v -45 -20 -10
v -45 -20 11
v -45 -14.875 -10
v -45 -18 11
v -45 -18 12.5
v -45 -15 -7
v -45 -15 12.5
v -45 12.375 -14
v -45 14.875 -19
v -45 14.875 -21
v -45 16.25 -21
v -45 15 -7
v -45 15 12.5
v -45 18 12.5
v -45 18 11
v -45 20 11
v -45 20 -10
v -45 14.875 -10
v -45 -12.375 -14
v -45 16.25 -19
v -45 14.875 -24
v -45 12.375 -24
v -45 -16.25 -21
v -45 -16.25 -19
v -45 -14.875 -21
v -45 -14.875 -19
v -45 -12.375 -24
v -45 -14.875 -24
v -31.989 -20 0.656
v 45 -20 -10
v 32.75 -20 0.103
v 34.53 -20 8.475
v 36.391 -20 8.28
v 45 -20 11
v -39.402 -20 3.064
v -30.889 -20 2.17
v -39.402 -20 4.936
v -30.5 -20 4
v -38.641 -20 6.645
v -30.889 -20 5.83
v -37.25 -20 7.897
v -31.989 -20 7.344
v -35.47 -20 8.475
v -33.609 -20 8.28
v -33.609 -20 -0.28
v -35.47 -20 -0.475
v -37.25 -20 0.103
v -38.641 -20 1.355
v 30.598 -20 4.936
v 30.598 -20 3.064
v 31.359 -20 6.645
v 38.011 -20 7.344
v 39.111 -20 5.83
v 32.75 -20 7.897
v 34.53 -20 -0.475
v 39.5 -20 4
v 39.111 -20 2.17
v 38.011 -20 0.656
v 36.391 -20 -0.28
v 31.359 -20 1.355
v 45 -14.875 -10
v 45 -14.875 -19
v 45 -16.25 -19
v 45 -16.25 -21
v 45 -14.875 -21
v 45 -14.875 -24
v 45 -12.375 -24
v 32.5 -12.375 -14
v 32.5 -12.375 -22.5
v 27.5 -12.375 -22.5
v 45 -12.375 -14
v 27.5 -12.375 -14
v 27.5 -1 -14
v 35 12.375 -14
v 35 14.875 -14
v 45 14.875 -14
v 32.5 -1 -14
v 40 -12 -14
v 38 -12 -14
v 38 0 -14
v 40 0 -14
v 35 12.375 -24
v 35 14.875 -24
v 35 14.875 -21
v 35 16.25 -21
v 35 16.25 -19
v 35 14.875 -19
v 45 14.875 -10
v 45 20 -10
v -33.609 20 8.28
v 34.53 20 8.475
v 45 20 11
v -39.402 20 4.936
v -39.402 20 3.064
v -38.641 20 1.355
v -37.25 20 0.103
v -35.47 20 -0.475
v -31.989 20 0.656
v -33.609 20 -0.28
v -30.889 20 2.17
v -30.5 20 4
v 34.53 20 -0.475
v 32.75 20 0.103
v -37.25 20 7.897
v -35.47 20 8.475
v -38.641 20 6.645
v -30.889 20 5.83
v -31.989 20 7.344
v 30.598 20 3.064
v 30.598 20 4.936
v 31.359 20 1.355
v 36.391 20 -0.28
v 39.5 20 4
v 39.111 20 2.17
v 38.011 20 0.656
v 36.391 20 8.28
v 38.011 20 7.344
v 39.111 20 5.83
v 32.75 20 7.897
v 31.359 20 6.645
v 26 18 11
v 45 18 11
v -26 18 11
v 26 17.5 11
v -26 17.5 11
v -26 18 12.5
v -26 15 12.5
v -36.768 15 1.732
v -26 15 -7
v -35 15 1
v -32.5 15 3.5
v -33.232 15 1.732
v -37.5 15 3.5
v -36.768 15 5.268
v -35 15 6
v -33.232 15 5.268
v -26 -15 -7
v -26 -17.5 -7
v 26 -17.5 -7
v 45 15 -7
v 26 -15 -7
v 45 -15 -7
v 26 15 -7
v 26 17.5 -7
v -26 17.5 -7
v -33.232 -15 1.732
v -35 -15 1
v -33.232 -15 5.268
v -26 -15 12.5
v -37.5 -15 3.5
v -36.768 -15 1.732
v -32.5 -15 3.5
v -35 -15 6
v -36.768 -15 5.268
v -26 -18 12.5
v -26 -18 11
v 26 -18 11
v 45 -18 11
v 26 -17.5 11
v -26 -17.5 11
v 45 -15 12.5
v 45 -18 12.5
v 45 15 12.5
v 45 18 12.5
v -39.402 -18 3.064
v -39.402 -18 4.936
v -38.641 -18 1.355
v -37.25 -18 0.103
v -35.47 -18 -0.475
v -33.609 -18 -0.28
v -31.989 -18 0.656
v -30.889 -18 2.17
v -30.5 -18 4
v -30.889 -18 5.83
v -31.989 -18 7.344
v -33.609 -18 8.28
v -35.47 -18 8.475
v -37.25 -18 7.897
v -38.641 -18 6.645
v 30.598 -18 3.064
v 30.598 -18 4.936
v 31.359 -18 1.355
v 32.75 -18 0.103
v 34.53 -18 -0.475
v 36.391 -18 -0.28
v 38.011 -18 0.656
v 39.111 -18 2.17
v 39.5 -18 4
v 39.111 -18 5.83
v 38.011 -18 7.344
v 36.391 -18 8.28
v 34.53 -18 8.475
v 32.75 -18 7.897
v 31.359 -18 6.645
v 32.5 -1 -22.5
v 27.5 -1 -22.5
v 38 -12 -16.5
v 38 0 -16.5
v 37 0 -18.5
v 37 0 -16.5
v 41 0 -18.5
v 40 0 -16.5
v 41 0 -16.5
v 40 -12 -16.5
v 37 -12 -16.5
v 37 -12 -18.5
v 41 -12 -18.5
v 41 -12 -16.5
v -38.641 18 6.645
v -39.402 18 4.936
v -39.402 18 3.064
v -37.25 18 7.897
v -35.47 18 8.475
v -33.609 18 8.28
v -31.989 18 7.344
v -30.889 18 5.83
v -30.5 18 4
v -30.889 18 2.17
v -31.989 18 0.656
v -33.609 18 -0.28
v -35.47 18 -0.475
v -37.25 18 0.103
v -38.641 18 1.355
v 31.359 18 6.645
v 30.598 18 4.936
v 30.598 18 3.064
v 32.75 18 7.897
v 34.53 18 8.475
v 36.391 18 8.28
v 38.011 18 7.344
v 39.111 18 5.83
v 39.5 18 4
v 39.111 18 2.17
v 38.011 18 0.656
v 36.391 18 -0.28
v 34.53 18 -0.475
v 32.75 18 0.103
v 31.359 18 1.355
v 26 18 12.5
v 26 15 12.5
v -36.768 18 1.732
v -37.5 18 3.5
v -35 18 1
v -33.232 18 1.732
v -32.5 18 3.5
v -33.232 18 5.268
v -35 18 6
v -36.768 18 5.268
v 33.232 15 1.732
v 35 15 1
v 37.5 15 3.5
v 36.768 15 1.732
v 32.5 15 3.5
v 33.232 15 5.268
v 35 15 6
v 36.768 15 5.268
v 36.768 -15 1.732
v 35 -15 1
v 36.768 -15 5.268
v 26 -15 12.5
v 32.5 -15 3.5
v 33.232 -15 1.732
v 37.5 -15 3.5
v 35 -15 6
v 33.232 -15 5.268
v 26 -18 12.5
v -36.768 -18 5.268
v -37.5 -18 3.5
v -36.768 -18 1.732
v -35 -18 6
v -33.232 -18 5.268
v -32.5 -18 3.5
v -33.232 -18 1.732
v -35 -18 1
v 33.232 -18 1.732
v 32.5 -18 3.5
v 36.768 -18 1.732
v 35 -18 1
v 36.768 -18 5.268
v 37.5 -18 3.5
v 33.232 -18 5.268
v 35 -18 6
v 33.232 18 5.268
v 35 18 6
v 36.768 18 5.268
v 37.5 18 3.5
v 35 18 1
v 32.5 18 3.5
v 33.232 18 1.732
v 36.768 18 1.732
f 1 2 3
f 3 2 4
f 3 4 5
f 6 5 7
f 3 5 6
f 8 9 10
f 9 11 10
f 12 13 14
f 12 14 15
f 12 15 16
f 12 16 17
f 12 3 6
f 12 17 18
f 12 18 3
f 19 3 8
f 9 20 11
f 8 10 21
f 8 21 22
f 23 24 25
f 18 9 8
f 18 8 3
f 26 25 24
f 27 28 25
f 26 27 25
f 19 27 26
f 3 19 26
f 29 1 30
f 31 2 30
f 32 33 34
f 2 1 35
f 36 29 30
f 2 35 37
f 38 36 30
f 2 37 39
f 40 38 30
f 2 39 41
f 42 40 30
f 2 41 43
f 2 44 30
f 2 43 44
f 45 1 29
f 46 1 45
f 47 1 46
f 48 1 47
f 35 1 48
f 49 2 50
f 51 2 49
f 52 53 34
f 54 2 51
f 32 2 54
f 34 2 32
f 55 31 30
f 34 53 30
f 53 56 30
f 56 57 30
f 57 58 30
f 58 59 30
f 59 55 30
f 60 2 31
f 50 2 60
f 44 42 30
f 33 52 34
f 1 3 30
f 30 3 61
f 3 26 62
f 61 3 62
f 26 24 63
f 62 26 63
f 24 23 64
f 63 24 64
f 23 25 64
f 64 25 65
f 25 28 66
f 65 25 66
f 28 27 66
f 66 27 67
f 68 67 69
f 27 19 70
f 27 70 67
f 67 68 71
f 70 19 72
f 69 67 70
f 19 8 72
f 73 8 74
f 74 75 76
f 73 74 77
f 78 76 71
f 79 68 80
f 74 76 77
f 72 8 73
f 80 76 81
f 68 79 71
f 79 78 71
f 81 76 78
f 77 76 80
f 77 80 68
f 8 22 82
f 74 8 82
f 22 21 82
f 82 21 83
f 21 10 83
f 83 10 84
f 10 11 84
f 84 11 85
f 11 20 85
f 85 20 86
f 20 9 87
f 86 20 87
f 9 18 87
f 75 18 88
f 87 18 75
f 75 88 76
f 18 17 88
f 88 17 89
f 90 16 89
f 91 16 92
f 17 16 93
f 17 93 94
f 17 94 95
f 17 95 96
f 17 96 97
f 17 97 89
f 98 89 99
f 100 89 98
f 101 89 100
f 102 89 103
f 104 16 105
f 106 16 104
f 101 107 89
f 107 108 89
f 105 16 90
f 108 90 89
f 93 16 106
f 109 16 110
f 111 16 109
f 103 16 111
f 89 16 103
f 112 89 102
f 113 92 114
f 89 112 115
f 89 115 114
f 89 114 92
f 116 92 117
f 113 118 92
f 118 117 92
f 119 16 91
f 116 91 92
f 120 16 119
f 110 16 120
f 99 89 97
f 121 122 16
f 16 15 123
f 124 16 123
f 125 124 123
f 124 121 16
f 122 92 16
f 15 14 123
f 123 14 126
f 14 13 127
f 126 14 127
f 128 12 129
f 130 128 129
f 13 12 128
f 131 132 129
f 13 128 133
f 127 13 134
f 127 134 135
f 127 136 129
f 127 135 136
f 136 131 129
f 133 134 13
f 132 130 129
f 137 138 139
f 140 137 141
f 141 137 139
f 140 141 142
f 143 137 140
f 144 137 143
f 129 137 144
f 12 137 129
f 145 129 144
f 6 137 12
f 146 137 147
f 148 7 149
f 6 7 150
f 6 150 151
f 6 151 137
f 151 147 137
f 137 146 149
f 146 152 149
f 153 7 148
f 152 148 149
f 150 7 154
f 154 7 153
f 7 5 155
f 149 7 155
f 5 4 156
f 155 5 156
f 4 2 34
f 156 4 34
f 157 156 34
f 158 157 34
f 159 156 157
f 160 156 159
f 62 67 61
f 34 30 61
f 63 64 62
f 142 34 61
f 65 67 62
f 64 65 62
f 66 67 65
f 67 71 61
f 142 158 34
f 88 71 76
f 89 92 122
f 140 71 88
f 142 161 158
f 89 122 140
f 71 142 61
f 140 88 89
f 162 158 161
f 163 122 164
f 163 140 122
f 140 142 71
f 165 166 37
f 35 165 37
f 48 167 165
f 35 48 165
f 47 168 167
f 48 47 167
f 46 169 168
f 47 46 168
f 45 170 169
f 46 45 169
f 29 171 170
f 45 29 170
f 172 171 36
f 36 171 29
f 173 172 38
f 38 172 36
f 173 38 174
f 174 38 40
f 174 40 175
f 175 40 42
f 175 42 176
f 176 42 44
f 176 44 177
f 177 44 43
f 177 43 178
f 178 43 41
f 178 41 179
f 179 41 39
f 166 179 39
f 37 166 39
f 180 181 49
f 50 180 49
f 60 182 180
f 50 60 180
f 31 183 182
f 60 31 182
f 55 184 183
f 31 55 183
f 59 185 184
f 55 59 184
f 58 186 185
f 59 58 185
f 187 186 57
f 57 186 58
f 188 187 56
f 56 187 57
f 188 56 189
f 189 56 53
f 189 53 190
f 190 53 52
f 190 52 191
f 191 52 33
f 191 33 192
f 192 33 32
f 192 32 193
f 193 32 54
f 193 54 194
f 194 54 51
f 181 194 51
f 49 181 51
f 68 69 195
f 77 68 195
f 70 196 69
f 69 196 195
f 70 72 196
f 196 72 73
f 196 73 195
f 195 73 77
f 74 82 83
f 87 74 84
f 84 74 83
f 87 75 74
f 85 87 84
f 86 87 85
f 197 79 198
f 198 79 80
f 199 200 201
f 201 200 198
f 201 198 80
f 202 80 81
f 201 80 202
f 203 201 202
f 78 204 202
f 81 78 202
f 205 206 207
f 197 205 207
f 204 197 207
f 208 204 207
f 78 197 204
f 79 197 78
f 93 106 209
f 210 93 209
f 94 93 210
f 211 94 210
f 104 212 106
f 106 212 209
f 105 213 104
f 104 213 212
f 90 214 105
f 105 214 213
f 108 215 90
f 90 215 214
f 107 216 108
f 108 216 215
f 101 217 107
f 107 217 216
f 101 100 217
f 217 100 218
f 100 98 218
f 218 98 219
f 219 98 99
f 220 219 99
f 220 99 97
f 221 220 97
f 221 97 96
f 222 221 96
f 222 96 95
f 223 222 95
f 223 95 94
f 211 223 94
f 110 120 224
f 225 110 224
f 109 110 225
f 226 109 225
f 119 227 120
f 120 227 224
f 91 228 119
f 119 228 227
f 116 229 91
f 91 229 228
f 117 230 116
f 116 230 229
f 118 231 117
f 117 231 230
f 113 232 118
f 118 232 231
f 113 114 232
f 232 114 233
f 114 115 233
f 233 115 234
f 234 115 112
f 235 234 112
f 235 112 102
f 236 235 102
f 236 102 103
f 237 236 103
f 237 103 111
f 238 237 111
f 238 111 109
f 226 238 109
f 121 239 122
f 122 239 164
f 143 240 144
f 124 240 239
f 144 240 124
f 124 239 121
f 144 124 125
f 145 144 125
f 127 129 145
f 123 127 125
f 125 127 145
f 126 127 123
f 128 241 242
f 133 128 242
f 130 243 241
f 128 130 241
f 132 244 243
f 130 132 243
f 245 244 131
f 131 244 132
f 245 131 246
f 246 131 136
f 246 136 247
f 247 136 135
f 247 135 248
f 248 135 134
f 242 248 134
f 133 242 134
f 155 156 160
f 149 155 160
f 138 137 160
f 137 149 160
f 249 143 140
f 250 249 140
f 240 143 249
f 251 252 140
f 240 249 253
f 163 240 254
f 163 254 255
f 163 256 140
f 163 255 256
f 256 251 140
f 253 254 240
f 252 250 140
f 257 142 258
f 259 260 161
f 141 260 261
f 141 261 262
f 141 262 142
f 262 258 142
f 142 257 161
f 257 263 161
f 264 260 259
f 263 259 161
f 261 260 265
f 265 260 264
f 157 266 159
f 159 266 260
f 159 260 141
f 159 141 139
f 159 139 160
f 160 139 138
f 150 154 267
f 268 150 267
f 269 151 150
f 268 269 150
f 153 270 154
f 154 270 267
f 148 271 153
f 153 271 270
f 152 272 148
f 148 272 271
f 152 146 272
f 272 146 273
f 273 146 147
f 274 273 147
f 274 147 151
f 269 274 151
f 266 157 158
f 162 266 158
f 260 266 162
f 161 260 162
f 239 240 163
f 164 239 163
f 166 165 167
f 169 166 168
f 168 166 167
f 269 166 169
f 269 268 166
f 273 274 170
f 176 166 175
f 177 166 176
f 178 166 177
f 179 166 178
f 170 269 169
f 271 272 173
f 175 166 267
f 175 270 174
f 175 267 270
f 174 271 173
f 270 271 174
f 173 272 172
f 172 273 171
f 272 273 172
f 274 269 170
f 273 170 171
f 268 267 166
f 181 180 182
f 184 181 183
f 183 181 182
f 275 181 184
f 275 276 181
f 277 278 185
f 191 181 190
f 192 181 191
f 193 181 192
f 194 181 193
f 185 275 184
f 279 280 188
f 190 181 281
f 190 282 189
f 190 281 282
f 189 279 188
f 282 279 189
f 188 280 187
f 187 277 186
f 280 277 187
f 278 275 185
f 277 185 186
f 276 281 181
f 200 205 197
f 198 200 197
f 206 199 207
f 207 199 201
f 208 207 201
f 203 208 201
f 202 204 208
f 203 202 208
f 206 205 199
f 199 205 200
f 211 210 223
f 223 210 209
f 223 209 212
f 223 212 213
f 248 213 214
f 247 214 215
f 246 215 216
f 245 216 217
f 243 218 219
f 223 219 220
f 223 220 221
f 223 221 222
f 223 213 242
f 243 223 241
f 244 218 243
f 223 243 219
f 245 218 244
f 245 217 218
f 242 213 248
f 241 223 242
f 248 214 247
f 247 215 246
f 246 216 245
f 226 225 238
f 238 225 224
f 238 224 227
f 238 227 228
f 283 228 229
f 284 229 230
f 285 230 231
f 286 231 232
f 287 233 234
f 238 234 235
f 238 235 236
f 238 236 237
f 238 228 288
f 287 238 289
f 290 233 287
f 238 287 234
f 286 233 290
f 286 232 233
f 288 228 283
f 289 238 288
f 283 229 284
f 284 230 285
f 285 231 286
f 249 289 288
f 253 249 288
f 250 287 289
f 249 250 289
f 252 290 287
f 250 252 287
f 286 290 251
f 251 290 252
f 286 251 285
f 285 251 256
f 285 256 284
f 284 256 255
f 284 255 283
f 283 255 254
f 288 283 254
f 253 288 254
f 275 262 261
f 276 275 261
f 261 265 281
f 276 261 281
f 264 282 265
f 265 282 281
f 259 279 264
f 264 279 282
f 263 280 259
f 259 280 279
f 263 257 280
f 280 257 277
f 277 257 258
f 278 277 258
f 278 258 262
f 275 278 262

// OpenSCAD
module mechanical_slideStepper_mountingBracket_large(){
	difference(){
		//movedMainBlockHigherAndTallerToAccommodateScrewHoleHeightAdjustments
//		translate([0,0,70]){
		translate([0,0,70.5]){
//			color([1,1,0]) cube(size=[90,40,20],center=true);
			color([1,1,0]) cube(size=[90,40,21],center=true);
		}
		translate([0,0,73]){
			color([1,1,0]) cube(size=[95,35,20],center=true);
		}
		//mountingScrewHoles
//		translate([35,-9.5,73.5]){
		translate([35,-9.5,74]){
			rotate([90,0,0]){
				cylinder(r=4.5,h=25,center=true);
			}
		}
//		translate([35,9,73.5]){
		translate([35,9,74]){
			rotate([90,0,0]){
				cylinder(r=4.5,h=25,center=true);
			}
		}
//		translate([-35,-9,73.5]){
		translate([-35,-9,74]){
			rotate([90,0,0]){
				cylinder(r=4.5,h=25,center=true);
			}
		}
//		translate([-35,9,73.5]){
		translate([-35,9,74]){
			rotate([90,0,0]){
				cylinder(r=4.5,h=25,center=true);
			}
		}
	}
	//cornerPads
	difference(){
		translate([35.5,-16.5,72]){
			color([1,1,0]) cube(size=[19,3,21],center=true);
		}	
		translate([35,-9.5,73.5]){
			rotate([90,0,0]){
				cylinder(r=2.5,h=25,center=true);
			}
		}
	}
	difference(){
		translate([35.5,16.5,72]){
			color([1,1,0]) cube(size=[19,3,21],center=true);
		}	
		translate([35,9,73.5]){
			rotate([90,0,0]){
				cylinder(r=2.5,h=25,center=true);
			}
		}
	}

	difference(){
		translate([-35.5,-16.5,72]){
			color([1,1,0]) cube(size=[19,3,21],center=true);
		}	
		translate([-35,-9,73.5]){
			rotate([90,0,0]){
				cylinder(r=2.5,h=25,center=true);
			}
		}
	}
	difference(){
		translate([-35.5,16.5,72]){
			color([1,1,0]) cube(size=[19,3,21],center=true);
		}
		translate([-35,9,73.5]){
			rotate([90,0,0]){
				cylinder(r=2.5,h=25,center=true);
			}
		}
	}
	//slidesAdjustedToMakeAtighterFit
	translate([0,0,58]){
//		color([1,1,0])  cube(size=[90,28.5,4],center=true);
		color([1,1,0])  cube(size=[90,29.75,4],center=true);
	}
	//verticalGuides
//	translate([0,-13,51]){
	translate([0,-13.625,51]){
		color([1,1,0])  cube(size=[90,2.5,10],center=true);
	}
//	translate([-5,13,51]){
	translate([-5,13.625,51]){
		color([1,1,0])  cube(size=[80,2.5,10],center=true);
	}
	//slides
//	translate([0,-14,50]){
	translate([0,-15,50]){
		color([1,1,0])  cube(size=[90,2.5,2],center=true);
	}
//	translate([-5,14,50]){
	translate([-5,15,50]){
		color([1,1,0])  cube(size=[80,2.5,2],center=true);
	}


	
	translate([39,-6,54]) cube(size=[2,12,5],center=true);
	translate([39,-6,52.5]) cube(size=[4,12,2],center=true);
	translate([30,-7,52]) cube(size=[5,12,9],center=true);
}
translate([0,0,-70]){
	mechanical_slideStepper_mountingBracket_large();
}
